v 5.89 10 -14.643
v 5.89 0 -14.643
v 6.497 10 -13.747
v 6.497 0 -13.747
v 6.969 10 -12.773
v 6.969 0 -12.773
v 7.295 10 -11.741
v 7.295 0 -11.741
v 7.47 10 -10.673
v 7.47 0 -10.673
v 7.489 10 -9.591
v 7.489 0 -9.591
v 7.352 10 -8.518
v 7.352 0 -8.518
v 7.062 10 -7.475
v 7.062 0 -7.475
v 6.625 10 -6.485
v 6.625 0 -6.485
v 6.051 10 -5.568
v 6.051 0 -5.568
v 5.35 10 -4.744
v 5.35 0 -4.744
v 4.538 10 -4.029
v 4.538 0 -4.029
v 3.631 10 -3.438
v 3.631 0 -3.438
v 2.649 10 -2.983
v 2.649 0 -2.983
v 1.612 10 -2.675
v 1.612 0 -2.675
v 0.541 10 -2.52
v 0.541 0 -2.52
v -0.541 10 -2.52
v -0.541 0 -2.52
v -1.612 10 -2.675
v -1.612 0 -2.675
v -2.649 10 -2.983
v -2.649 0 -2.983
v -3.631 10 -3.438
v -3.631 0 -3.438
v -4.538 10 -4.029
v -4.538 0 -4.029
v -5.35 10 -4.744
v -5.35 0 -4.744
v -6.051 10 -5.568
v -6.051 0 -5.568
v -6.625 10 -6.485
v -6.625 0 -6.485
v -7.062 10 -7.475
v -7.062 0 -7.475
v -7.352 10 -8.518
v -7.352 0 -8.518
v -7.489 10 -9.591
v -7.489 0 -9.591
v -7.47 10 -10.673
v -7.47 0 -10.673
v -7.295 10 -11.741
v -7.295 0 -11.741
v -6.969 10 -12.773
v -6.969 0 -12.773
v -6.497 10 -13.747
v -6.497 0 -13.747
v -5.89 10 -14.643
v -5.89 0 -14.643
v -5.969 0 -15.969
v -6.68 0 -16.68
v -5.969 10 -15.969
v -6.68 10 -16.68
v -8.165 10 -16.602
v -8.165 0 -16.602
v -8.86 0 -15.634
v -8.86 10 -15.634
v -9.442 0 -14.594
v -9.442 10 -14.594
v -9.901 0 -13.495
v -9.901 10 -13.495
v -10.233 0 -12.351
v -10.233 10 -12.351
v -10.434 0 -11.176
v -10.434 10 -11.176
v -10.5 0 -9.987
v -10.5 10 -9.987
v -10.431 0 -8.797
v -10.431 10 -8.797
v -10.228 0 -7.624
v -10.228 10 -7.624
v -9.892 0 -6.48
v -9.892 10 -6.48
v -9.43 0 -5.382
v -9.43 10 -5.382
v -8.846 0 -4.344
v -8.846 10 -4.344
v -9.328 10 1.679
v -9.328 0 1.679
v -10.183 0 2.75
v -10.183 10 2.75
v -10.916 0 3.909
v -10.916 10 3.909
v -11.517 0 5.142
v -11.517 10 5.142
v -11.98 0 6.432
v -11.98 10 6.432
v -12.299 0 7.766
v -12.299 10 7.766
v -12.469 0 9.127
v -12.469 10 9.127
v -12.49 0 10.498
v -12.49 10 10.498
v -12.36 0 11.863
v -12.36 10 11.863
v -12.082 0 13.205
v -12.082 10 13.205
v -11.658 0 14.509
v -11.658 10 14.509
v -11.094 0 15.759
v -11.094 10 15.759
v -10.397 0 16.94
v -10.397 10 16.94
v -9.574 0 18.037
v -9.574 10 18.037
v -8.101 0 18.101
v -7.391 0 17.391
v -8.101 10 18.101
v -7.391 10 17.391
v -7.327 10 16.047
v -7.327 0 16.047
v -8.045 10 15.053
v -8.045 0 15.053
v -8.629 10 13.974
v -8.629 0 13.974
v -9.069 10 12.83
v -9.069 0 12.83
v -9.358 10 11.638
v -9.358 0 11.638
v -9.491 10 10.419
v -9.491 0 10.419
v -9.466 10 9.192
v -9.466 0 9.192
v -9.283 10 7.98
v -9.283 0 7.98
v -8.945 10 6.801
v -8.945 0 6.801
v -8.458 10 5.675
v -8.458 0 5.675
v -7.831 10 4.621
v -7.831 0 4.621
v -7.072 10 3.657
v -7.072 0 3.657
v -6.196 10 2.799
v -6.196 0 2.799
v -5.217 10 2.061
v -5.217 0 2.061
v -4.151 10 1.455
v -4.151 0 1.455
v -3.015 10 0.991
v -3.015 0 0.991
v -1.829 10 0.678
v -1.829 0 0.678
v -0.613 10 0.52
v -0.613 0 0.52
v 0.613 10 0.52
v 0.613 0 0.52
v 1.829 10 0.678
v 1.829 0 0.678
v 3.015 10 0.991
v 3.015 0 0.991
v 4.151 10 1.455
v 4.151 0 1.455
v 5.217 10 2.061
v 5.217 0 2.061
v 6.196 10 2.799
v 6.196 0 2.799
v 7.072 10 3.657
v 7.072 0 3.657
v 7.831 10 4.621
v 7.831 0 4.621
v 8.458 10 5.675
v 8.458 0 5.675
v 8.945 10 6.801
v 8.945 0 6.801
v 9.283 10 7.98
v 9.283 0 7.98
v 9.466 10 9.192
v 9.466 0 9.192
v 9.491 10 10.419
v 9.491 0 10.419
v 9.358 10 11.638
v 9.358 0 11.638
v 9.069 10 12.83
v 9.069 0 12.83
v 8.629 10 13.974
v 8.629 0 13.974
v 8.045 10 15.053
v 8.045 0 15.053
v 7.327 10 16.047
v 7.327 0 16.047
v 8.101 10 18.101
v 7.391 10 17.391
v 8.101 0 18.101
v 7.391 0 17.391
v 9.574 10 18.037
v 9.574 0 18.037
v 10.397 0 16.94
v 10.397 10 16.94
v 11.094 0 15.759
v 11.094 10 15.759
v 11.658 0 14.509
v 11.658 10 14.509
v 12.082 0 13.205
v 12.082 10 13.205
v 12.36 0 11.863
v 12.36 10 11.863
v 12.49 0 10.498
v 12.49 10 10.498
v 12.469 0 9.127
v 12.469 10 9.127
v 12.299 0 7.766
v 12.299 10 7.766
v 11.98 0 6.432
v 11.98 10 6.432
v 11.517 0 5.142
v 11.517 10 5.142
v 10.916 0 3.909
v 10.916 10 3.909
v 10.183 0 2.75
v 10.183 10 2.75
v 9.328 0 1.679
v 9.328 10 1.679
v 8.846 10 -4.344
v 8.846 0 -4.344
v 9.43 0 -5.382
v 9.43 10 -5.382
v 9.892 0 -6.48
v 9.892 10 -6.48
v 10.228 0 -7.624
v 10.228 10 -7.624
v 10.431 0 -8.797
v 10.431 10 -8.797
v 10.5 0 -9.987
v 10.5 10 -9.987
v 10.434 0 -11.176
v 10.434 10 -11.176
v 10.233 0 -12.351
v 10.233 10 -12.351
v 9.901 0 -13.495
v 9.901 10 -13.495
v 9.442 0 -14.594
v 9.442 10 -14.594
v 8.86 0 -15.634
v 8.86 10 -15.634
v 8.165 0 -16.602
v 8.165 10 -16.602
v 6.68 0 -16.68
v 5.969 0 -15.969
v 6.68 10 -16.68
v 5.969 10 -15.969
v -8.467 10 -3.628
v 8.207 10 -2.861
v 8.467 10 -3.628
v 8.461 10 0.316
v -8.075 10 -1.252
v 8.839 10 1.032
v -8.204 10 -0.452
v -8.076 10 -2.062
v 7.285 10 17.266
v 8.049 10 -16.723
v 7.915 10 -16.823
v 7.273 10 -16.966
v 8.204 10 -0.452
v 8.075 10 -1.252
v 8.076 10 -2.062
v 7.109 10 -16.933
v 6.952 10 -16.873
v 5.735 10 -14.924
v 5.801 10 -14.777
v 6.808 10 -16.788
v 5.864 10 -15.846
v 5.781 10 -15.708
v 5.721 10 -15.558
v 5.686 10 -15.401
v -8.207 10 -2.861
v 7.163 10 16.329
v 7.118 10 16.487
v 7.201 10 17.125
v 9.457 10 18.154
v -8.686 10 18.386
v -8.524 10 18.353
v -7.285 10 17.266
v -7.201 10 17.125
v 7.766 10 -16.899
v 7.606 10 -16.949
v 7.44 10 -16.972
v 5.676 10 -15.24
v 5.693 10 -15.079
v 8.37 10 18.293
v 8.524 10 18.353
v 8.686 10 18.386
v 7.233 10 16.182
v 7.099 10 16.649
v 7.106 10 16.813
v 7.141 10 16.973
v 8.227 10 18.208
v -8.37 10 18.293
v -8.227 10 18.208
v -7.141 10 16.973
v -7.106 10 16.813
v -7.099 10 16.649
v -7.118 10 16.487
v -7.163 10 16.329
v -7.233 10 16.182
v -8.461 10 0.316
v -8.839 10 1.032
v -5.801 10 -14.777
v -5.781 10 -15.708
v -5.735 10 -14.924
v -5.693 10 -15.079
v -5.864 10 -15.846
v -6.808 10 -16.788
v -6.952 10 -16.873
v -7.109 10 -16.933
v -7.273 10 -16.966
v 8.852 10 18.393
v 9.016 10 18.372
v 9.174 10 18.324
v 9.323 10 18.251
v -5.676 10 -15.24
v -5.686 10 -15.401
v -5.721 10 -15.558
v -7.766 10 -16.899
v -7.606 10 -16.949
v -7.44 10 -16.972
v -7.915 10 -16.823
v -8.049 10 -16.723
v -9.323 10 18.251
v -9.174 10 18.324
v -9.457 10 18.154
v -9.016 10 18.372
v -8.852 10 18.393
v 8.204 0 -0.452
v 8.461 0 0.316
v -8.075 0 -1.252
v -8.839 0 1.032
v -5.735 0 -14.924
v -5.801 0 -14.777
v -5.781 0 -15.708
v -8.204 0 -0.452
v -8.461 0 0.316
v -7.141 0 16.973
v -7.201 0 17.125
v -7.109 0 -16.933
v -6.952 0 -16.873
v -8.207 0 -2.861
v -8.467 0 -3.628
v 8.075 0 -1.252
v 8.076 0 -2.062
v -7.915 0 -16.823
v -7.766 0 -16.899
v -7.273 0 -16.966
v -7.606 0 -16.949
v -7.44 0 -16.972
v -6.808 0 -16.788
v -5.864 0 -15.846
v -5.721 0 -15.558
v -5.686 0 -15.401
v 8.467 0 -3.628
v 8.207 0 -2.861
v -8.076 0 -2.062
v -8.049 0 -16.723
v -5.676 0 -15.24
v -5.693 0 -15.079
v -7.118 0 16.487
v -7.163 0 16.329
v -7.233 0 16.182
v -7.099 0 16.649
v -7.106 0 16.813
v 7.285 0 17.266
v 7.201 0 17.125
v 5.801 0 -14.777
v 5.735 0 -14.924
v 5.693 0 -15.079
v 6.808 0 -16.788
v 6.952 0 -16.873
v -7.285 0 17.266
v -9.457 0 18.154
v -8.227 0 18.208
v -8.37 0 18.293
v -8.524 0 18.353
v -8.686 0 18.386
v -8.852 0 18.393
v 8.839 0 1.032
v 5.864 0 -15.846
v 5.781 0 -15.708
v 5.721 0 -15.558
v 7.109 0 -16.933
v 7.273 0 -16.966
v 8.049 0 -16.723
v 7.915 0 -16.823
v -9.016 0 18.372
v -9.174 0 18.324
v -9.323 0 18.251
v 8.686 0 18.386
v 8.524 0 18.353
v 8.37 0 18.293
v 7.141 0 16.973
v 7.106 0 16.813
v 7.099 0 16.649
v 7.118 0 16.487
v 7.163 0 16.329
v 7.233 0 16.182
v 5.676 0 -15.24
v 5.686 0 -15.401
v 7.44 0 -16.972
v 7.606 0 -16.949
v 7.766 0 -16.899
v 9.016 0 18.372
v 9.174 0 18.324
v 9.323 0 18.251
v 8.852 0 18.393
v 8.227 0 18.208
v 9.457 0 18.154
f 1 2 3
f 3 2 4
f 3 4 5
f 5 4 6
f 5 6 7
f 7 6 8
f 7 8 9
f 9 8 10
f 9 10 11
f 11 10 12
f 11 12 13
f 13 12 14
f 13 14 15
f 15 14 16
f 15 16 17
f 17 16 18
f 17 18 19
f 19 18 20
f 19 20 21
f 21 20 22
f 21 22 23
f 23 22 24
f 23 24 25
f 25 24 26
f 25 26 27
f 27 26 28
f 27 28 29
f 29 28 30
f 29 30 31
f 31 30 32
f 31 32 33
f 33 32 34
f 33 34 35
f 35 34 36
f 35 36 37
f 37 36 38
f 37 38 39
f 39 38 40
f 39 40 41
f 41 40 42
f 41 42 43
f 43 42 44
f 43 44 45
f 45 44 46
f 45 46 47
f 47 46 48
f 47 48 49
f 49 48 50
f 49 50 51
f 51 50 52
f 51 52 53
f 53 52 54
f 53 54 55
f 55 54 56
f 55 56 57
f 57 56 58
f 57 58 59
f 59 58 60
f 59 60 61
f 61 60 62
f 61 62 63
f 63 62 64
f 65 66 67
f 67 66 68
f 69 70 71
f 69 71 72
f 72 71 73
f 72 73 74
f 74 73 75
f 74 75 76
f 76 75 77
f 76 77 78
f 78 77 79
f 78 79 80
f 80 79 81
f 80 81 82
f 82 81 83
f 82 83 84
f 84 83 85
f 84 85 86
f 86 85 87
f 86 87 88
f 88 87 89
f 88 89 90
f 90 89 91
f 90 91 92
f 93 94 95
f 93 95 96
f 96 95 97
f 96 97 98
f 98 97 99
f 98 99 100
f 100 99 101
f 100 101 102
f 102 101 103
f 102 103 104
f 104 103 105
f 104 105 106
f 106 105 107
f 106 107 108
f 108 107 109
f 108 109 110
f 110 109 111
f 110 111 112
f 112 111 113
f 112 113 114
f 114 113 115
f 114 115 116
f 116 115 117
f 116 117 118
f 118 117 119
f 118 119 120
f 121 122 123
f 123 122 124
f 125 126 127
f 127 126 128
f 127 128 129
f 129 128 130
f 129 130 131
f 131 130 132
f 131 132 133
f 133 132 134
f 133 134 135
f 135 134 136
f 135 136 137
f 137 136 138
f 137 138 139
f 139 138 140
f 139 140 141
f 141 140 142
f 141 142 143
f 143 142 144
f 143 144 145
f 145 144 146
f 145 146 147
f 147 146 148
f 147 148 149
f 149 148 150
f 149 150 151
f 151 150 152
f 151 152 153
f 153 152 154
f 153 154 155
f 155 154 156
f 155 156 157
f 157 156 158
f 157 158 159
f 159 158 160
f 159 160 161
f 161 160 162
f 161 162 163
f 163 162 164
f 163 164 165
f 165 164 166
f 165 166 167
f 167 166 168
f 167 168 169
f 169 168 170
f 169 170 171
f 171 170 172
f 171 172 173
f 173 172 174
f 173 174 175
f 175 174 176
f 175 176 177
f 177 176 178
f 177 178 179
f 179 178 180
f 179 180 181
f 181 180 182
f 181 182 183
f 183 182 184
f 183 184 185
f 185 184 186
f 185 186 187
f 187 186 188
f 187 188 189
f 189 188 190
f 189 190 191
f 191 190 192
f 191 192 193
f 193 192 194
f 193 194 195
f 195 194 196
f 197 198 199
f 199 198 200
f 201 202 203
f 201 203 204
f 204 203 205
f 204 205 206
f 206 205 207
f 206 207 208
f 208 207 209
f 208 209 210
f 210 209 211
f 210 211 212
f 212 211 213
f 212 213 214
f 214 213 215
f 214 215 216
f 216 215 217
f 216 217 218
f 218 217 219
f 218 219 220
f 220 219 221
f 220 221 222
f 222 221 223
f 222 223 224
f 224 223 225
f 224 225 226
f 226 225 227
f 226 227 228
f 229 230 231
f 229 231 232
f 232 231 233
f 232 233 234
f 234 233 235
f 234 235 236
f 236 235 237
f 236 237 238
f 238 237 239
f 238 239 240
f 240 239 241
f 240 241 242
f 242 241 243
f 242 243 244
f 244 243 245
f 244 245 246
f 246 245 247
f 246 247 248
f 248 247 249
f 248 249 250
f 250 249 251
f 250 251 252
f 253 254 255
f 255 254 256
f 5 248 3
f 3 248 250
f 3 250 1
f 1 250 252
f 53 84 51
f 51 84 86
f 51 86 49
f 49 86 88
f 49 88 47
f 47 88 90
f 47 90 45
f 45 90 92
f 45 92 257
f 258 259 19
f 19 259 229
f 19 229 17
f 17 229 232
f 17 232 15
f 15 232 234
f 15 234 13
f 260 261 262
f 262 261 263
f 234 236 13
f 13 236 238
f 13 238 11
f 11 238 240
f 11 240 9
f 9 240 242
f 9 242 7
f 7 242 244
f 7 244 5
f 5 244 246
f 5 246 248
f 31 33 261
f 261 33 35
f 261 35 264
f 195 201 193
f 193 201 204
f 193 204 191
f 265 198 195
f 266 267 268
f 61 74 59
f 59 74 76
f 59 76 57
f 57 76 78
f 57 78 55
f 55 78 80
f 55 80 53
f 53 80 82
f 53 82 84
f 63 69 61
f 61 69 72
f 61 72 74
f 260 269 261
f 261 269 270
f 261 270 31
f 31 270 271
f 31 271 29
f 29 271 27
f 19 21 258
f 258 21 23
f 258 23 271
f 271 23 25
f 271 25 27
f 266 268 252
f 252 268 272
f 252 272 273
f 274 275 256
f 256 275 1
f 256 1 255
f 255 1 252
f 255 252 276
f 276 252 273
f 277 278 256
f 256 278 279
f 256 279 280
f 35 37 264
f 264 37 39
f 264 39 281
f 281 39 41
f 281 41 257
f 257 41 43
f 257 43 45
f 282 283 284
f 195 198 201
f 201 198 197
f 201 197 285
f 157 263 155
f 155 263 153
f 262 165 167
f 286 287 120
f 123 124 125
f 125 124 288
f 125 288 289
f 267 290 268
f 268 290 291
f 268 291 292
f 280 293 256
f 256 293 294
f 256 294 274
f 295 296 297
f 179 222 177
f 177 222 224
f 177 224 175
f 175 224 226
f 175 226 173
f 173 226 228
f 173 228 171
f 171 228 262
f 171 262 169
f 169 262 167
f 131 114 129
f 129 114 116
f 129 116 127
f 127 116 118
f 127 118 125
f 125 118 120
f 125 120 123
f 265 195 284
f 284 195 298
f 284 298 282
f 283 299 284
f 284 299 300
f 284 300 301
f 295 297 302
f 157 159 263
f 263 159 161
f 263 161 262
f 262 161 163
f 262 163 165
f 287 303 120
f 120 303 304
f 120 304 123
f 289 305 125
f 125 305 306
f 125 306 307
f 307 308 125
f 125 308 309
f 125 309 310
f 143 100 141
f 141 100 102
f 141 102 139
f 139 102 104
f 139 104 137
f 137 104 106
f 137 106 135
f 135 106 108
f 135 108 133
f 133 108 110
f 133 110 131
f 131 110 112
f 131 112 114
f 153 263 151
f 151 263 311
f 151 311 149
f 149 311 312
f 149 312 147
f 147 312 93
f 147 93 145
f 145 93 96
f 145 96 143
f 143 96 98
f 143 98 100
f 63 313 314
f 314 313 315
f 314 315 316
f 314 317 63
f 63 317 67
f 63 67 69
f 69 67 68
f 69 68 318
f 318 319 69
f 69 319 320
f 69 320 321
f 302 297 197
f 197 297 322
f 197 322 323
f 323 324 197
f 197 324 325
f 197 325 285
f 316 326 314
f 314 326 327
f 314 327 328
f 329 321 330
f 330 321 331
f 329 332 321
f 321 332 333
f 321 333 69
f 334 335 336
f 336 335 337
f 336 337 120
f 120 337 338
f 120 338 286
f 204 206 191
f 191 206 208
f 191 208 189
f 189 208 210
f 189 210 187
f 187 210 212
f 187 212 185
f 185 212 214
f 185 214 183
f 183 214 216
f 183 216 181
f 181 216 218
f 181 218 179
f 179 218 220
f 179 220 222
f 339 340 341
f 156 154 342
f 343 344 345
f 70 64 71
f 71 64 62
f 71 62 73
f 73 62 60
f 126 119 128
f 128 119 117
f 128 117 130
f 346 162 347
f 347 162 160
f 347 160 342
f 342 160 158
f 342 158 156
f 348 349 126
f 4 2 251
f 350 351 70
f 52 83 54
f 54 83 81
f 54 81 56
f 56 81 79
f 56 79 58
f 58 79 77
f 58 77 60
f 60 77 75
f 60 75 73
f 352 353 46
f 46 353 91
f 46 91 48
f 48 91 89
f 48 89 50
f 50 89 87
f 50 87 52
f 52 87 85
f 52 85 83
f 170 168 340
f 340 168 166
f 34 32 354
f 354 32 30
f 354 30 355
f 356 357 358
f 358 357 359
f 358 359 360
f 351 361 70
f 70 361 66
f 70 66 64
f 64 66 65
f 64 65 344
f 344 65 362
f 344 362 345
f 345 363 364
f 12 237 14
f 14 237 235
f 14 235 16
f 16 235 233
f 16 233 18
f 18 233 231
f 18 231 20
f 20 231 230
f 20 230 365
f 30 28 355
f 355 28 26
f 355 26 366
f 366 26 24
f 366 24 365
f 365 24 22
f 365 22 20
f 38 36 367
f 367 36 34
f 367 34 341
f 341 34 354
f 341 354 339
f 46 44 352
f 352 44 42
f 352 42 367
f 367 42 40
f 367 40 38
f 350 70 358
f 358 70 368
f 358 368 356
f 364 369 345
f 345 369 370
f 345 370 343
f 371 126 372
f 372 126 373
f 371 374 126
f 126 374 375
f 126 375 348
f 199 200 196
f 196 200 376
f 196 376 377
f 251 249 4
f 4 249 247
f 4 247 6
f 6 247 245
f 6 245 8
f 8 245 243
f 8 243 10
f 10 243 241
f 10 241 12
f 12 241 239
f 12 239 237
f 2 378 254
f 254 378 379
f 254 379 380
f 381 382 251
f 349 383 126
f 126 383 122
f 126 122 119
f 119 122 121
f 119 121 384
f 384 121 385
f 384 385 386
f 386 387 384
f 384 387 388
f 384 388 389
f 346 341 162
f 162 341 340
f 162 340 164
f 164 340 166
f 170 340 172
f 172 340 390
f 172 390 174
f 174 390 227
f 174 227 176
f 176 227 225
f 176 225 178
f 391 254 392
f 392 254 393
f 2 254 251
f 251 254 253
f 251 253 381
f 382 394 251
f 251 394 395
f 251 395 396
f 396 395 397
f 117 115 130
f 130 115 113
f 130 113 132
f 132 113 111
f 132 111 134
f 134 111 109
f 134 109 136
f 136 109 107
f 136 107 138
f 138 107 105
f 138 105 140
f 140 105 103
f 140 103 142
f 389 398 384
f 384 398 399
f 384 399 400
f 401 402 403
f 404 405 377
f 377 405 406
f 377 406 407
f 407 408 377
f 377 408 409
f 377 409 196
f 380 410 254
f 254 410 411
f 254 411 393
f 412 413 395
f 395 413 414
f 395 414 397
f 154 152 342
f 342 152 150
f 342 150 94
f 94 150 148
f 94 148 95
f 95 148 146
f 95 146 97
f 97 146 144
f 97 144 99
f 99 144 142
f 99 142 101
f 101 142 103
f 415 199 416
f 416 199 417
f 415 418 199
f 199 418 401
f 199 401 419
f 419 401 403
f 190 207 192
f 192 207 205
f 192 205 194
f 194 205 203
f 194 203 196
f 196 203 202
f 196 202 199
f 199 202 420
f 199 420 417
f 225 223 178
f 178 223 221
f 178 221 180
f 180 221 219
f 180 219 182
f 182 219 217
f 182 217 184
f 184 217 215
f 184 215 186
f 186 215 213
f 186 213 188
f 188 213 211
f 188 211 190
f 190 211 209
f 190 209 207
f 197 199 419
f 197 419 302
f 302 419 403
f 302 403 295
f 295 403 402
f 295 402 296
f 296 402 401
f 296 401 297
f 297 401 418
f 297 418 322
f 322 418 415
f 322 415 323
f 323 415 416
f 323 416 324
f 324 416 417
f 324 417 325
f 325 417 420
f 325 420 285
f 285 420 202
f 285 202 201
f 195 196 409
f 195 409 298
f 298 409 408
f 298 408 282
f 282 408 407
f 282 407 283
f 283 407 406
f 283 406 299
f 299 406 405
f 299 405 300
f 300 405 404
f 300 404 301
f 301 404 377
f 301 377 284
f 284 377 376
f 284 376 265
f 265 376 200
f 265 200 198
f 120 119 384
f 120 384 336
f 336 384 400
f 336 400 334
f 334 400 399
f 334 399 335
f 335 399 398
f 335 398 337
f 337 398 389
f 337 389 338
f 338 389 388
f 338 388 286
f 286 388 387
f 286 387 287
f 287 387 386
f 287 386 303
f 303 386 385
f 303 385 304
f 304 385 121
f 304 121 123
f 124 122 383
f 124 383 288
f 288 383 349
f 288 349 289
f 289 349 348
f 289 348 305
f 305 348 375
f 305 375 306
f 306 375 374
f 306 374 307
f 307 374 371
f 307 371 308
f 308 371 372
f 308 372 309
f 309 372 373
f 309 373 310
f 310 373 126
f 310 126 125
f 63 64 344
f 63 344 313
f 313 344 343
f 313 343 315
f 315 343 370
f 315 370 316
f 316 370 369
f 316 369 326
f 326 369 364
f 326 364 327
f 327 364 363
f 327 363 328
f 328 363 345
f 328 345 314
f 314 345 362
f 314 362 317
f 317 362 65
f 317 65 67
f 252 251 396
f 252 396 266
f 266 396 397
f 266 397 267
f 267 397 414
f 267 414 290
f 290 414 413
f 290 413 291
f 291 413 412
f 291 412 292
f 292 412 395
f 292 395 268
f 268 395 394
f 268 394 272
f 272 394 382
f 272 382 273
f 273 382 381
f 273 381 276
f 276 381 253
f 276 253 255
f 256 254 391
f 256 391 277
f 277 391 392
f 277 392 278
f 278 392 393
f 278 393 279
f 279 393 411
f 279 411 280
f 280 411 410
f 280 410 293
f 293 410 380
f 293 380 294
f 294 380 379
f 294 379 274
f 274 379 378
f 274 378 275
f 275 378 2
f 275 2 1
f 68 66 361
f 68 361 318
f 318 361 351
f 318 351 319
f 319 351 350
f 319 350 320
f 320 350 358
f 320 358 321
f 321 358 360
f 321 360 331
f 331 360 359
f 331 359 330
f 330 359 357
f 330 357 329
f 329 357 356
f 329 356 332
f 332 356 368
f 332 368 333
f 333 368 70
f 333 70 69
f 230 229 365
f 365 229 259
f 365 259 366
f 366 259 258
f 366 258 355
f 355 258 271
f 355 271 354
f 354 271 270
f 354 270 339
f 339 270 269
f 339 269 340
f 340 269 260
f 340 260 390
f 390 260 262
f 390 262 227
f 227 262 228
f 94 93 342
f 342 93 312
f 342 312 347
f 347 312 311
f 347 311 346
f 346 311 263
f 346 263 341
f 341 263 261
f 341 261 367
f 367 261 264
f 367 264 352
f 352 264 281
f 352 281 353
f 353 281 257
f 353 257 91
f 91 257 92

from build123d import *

# Parameters (mm, degrees)
BOSS_EXTRUDE1_DEPTH = 10
FILLET1_R           = 1
FILLET2_R           = 5


with BuildPart() as part:
    # Sketch1 → Boss-Extrude1 (new body)
    with BuildSketch(Plane(origin=(0, 0, 0), x_dir=(1, 0, 0), z_dir=(0, 1, 0))):
        with BuildLine():
            Line((-5.303300859, 15.303300859), (-7.424621202, 17.424621202))
            ThreePointArc((-7.424621202, 17.424621202), (-10.438158184, 8.862083601), (-5.650442461, 1.15))
            ThreePointArc((-5.650442461, 1.15), (-12.343952667, -8.031032616), (-8.838834765, -18.838834765))
            Line((-8.838834765, -18.838834765), (-6.717514421, -16.717514421))
            ThreePointArc((-6.717514421, -16.717514421), (0, -0.5), (6.717514421, -16.717514421))
            Line((6.717514421, -16.717514421), (8.838834765, -18.838834765))
            ThreePointArc((8.838834765, -18.838834765), (12.343952667, -8.031032616), (5.650442461, 1.15))
            ThreePointArc((5.650442461, 1.15), (10.438158184, 8.862083601), (7.424621202, 17.424621202))
            Line((7.424621202, 17.424621202), (5.303300859, 15.303300859))
            ThreePointArc((5.303300859, 15.303300859), (0, 2.5), (-5.303300859, 15.303300859))
        make_face()
    extrude(amount=BOSS_EXTRUDE1_DEPTH)

    # Fillet1
    fillet1_edges = [part.edges().sort_by_distance(p)[0] for p in [
        (5.303300859, 5, -15.303300859),
        (7.424621202, 5, -17.424621202),
        (8.838834765, 5, 18.838834765),
        (6.717514421, 5, 16.717514421),
        (-6.717514421, 5, 16.717514421),
        (-8.838834765, 5, 18.838834765),
        (-7.424621202, 5, -17.424621202),
        (-5.303300859, 5, -15.303300859),
    ]]
    fillet(fillet1_edges, radius=FILLET1_R)

    # Fillet2
    fillet2_edges = [part.edges().sort_by_distance(p)[0] for p in [
        (5.650442461, 5, -1.15),
        (-5.650442461, 5, -1.15),
    ]]
    fillet(fillet2_edges, radius=FILLET2_R)


solid = part.part
